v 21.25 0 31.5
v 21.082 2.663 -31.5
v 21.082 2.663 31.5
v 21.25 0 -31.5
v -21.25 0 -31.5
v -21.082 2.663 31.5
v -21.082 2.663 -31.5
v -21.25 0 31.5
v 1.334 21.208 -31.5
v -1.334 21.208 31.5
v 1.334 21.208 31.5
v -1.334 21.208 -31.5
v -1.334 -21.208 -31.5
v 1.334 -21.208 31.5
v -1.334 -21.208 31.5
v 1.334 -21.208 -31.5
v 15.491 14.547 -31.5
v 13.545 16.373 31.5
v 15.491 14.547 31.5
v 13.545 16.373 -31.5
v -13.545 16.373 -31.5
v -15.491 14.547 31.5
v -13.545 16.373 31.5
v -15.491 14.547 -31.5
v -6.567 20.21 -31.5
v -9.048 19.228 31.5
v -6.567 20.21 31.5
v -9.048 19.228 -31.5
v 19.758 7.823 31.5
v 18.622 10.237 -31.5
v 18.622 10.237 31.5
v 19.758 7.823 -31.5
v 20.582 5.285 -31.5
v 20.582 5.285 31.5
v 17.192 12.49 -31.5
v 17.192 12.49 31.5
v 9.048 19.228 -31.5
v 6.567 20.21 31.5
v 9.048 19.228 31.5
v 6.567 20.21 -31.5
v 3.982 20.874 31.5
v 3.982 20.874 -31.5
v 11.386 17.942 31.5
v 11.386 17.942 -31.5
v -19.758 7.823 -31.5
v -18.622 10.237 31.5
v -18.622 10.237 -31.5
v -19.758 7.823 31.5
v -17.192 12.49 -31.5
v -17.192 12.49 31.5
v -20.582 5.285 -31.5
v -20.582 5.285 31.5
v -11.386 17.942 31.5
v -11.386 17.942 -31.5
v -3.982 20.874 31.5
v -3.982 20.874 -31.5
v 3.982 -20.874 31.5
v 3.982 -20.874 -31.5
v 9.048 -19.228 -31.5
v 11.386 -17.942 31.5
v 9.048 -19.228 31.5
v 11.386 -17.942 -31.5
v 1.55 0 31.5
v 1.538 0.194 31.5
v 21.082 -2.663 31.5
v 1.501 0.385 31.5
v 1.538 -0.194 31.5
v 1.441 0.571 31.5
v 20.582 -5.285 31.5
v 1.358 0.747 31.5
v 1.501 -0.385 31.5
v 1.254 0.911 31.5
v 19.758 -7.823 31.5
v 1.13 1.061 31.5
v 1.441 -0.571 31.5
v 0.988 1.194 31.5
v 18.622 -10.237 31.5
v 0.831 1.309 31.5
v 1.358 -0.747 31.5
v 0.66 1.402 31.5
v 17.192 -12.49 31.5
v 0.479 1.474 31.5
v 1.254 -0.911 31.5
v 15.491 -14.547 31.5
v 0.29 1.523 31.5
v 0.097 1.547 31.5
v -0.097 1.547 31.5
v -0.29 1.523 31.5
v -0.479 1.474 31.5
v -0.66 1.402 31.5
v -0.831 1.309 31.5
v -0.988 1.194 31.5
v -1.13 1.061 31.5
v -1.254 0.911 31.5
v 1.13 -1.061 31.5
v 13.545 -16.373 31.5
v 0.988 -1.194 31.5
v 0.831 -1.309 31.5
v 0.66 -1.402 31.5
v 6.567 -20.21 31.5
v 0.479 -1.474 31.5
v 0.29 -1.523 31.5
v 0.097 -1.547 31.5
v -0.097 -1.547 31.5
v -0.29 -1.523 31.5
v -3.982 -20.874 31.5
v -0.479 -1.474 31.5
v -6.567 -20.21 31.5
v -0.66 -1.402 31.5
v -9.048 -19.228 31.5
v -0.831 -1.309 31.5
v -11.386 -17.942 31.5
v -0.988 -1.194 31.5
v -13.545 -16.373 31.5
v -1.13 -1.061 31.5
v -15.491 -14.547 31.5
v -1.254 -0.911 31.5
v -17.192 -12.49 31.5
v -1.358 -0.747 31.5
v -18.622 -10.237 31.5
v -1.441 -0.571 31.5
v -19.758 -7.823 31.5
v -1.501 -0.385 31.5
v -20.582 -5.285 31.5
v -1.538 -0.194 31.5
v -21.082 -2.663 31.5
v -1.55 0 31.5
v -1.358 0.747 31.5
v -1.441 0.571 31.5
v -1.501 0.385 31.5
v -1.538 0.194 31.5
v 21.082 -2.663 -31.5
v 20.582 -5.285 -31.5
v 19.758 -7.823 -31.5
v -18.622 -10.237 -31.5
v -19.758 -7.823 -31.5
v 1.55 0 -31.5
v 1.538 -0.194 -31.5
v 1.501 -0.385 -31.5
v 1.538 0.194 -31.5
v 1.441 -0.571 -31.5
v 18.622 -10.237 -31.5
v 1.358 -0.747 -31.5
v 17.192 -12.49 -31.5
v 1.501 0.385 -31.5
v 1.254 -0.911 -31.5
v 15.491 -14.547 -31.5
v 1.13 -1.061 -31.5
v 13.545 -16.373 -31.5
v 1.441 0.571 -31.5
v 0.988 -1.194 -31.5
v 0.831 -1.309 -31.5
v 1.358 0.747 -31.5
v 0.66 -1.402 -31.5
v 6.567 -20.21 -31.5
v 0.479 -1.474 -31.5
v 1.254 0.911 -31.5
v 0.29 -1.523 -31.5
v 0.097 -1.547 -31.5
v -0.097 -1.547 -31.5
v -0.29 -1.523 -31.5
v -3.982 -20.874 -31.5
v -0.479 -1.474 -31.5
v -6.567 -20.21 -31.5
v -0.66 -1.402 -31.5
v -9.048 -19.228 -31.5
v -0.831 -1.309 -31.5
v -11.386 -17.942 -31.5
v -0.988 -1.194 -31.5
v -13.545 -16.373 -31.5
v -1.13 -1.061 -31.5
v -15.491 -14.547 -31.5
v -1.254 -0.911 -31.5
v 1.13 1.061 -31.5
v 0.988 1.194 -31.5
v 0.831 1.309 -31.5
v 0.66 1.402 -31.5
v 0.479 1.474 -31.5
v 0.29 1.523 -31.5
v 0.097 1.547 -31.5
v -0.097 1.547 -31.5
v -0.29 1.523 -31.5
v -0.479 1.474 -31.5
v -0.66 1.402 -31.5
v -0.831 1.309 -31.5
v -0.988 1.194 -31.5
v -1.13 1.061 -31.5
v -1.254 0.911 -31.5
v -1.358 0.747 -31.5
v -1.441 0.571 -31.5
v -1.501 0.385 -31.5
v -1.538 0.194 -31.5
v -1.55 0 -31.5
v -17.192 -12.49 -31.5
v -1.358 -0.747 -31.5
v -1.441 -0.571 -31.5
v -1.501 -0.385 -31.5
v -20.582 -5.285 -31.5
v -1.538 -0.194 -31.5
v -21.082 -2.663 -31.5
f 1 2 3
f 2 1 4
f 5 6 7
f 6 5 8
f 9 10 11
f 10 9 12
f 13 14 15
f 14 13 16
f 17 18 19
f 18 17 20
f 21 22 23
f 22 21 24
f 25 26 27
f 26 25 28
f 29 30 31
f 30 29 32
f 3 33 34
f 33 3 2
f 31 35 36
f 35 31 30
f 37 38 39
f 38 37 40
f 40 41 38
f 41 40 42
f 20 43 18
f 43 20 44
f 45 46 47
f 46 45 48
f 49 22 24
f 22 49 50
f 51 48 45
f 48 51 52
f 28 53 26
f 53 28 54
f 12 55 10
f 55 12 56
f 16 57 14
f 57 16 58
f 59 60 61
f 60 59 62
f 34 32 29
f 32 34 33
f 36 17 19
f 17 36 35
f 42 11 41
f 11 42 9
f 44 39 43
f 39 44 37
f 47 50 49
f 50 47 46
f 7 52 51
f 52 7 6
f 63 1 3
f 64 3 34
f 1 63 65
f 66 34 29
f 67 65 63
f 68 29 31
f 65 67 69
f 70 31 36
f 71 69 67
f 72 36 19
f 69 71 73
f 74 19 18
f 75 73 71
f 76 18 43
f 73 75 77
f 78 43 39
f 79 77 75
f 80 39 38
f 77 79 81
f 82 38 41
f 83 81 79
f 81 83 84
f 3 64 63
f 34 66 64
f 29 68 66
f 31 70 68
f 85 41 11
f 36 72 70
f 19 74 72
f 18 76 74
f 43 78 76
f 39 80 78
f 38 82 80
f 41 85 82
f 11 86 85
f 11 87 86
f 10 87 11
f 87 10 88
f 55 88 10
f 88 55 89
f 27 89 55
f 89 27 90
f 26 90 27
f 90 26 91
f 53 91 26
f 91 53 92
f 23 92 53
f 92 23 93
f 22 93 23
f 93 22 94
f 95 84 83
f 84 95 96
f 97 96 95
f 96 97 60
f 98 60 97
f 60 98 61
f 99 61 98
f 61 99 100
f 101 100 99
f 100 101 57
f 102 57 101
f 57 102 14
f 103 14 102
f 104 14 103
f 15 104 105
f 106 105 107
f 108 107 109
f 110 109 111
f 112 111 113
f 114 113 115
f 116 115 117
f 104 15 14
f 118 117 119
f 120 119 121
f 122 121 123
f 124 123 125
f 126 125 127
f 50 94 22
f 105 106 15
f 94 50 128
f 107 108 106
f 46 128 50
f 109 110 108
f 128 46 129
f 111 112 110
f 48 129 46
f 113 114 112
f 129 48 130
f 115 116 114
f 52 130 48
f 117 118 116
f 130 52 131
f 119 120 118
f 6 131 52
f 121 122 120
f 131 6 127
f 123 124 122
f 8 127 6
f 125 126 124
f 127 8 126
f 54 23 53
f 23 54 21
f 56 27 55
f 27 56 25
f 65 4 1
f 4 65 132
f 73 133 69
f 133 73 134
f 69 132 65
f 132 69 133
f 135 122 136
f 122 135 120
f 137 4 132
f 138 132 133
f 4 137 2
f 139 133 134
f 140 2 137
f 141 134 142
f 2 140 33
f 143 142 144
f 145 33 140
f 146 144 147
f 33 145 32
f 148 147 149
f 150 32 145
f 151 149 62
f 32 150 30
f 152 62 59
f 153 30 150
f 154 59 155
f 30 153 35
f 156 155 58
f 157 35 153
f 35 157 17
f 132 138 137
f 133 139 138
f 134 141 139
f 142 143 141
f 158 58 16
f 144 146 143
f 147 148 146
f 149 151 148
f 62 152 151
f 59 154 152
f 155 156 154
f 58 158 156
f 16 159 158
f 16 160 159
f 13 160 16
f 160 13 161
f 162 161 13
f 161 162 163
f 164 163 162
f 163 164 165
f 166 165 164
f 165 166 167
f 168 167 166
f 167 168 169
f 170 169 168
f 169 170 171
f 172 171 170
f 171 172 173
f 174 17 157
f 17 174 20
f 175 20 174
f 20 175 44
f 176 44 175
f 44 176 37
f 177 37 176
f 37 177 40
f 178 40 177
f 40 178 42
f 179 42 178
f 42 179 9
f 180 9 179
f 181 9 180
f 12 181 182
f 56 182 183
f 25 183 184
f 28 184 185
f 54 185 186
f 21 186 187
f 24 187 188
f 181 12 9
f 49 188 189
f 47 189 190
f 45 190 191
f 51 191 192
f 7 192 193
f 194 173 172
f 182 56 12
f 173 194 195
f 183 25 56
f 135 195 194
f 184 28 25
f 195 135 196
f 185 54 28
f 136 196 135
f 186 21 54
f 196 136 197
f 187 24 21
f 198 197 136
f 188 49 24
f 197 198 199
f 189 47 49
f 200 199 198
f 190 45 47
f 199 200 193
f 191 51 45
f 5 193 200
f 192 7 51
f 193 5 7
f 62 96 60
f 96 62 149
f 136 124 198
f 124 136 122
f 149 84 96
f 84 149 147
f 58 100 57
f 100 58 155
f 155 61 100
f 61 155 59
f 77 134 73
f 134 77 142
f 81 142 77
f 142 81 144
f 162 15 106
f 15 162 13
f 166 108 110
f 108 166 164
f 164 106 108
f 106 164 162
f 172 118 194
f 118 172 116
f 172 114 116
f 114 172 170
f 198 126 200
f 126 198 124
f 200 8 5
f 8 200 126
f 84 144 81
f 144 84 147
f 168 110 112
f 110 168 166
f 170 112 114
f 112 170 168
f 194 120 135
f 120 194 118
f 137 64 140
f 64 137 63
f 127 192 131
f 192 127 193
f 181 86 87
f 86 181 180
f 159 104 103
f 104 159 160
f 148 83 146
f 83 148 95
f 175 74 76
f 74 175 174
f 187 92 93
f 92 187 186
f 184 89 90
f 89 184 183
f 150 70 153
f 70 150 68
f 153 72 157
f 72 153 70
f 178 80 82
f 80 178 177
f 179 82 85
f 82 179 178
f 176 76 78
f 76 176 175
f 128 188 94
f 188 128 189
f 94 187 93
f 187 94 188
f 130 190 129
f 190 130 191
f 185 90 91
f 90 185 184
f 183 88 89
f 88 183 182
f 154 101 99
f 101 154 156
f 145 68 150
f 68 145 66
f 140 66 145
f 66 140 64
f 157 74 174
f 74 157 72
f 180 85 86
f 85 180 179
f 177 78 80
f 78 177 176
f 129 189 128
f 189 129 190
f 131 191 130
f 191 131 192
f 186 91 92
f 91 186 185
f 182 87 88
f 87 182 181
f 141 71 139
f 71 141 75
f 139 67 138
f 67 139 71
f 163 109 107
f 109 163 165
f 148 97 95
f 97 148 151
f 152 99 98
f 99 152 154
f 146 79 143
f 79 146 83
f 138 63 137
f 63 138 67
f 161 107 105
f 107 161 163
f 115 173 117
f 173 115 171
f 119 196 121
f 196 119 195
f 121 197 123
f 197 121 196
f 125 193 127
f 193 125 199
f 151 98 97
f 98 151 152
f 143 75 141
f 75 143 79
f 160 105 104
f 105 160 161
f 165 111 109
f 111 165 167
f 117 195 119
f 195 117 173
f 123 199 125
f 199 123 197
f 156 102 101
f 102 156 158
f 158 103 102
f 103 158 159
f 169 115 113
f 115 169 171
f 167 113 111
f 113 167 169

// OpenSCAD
$fn = 50;


difference() {
	union() {
		translate(v = [0, 0, -31.5000000000]) {
			cylinder(h = 63, r = 21.2500000000);
		}
	}
	union() {
		translate(v = [0, 0, -100.0000000000]) {
			cylinder(h = 200, r = 1.5500000000);
		}
	}
}
